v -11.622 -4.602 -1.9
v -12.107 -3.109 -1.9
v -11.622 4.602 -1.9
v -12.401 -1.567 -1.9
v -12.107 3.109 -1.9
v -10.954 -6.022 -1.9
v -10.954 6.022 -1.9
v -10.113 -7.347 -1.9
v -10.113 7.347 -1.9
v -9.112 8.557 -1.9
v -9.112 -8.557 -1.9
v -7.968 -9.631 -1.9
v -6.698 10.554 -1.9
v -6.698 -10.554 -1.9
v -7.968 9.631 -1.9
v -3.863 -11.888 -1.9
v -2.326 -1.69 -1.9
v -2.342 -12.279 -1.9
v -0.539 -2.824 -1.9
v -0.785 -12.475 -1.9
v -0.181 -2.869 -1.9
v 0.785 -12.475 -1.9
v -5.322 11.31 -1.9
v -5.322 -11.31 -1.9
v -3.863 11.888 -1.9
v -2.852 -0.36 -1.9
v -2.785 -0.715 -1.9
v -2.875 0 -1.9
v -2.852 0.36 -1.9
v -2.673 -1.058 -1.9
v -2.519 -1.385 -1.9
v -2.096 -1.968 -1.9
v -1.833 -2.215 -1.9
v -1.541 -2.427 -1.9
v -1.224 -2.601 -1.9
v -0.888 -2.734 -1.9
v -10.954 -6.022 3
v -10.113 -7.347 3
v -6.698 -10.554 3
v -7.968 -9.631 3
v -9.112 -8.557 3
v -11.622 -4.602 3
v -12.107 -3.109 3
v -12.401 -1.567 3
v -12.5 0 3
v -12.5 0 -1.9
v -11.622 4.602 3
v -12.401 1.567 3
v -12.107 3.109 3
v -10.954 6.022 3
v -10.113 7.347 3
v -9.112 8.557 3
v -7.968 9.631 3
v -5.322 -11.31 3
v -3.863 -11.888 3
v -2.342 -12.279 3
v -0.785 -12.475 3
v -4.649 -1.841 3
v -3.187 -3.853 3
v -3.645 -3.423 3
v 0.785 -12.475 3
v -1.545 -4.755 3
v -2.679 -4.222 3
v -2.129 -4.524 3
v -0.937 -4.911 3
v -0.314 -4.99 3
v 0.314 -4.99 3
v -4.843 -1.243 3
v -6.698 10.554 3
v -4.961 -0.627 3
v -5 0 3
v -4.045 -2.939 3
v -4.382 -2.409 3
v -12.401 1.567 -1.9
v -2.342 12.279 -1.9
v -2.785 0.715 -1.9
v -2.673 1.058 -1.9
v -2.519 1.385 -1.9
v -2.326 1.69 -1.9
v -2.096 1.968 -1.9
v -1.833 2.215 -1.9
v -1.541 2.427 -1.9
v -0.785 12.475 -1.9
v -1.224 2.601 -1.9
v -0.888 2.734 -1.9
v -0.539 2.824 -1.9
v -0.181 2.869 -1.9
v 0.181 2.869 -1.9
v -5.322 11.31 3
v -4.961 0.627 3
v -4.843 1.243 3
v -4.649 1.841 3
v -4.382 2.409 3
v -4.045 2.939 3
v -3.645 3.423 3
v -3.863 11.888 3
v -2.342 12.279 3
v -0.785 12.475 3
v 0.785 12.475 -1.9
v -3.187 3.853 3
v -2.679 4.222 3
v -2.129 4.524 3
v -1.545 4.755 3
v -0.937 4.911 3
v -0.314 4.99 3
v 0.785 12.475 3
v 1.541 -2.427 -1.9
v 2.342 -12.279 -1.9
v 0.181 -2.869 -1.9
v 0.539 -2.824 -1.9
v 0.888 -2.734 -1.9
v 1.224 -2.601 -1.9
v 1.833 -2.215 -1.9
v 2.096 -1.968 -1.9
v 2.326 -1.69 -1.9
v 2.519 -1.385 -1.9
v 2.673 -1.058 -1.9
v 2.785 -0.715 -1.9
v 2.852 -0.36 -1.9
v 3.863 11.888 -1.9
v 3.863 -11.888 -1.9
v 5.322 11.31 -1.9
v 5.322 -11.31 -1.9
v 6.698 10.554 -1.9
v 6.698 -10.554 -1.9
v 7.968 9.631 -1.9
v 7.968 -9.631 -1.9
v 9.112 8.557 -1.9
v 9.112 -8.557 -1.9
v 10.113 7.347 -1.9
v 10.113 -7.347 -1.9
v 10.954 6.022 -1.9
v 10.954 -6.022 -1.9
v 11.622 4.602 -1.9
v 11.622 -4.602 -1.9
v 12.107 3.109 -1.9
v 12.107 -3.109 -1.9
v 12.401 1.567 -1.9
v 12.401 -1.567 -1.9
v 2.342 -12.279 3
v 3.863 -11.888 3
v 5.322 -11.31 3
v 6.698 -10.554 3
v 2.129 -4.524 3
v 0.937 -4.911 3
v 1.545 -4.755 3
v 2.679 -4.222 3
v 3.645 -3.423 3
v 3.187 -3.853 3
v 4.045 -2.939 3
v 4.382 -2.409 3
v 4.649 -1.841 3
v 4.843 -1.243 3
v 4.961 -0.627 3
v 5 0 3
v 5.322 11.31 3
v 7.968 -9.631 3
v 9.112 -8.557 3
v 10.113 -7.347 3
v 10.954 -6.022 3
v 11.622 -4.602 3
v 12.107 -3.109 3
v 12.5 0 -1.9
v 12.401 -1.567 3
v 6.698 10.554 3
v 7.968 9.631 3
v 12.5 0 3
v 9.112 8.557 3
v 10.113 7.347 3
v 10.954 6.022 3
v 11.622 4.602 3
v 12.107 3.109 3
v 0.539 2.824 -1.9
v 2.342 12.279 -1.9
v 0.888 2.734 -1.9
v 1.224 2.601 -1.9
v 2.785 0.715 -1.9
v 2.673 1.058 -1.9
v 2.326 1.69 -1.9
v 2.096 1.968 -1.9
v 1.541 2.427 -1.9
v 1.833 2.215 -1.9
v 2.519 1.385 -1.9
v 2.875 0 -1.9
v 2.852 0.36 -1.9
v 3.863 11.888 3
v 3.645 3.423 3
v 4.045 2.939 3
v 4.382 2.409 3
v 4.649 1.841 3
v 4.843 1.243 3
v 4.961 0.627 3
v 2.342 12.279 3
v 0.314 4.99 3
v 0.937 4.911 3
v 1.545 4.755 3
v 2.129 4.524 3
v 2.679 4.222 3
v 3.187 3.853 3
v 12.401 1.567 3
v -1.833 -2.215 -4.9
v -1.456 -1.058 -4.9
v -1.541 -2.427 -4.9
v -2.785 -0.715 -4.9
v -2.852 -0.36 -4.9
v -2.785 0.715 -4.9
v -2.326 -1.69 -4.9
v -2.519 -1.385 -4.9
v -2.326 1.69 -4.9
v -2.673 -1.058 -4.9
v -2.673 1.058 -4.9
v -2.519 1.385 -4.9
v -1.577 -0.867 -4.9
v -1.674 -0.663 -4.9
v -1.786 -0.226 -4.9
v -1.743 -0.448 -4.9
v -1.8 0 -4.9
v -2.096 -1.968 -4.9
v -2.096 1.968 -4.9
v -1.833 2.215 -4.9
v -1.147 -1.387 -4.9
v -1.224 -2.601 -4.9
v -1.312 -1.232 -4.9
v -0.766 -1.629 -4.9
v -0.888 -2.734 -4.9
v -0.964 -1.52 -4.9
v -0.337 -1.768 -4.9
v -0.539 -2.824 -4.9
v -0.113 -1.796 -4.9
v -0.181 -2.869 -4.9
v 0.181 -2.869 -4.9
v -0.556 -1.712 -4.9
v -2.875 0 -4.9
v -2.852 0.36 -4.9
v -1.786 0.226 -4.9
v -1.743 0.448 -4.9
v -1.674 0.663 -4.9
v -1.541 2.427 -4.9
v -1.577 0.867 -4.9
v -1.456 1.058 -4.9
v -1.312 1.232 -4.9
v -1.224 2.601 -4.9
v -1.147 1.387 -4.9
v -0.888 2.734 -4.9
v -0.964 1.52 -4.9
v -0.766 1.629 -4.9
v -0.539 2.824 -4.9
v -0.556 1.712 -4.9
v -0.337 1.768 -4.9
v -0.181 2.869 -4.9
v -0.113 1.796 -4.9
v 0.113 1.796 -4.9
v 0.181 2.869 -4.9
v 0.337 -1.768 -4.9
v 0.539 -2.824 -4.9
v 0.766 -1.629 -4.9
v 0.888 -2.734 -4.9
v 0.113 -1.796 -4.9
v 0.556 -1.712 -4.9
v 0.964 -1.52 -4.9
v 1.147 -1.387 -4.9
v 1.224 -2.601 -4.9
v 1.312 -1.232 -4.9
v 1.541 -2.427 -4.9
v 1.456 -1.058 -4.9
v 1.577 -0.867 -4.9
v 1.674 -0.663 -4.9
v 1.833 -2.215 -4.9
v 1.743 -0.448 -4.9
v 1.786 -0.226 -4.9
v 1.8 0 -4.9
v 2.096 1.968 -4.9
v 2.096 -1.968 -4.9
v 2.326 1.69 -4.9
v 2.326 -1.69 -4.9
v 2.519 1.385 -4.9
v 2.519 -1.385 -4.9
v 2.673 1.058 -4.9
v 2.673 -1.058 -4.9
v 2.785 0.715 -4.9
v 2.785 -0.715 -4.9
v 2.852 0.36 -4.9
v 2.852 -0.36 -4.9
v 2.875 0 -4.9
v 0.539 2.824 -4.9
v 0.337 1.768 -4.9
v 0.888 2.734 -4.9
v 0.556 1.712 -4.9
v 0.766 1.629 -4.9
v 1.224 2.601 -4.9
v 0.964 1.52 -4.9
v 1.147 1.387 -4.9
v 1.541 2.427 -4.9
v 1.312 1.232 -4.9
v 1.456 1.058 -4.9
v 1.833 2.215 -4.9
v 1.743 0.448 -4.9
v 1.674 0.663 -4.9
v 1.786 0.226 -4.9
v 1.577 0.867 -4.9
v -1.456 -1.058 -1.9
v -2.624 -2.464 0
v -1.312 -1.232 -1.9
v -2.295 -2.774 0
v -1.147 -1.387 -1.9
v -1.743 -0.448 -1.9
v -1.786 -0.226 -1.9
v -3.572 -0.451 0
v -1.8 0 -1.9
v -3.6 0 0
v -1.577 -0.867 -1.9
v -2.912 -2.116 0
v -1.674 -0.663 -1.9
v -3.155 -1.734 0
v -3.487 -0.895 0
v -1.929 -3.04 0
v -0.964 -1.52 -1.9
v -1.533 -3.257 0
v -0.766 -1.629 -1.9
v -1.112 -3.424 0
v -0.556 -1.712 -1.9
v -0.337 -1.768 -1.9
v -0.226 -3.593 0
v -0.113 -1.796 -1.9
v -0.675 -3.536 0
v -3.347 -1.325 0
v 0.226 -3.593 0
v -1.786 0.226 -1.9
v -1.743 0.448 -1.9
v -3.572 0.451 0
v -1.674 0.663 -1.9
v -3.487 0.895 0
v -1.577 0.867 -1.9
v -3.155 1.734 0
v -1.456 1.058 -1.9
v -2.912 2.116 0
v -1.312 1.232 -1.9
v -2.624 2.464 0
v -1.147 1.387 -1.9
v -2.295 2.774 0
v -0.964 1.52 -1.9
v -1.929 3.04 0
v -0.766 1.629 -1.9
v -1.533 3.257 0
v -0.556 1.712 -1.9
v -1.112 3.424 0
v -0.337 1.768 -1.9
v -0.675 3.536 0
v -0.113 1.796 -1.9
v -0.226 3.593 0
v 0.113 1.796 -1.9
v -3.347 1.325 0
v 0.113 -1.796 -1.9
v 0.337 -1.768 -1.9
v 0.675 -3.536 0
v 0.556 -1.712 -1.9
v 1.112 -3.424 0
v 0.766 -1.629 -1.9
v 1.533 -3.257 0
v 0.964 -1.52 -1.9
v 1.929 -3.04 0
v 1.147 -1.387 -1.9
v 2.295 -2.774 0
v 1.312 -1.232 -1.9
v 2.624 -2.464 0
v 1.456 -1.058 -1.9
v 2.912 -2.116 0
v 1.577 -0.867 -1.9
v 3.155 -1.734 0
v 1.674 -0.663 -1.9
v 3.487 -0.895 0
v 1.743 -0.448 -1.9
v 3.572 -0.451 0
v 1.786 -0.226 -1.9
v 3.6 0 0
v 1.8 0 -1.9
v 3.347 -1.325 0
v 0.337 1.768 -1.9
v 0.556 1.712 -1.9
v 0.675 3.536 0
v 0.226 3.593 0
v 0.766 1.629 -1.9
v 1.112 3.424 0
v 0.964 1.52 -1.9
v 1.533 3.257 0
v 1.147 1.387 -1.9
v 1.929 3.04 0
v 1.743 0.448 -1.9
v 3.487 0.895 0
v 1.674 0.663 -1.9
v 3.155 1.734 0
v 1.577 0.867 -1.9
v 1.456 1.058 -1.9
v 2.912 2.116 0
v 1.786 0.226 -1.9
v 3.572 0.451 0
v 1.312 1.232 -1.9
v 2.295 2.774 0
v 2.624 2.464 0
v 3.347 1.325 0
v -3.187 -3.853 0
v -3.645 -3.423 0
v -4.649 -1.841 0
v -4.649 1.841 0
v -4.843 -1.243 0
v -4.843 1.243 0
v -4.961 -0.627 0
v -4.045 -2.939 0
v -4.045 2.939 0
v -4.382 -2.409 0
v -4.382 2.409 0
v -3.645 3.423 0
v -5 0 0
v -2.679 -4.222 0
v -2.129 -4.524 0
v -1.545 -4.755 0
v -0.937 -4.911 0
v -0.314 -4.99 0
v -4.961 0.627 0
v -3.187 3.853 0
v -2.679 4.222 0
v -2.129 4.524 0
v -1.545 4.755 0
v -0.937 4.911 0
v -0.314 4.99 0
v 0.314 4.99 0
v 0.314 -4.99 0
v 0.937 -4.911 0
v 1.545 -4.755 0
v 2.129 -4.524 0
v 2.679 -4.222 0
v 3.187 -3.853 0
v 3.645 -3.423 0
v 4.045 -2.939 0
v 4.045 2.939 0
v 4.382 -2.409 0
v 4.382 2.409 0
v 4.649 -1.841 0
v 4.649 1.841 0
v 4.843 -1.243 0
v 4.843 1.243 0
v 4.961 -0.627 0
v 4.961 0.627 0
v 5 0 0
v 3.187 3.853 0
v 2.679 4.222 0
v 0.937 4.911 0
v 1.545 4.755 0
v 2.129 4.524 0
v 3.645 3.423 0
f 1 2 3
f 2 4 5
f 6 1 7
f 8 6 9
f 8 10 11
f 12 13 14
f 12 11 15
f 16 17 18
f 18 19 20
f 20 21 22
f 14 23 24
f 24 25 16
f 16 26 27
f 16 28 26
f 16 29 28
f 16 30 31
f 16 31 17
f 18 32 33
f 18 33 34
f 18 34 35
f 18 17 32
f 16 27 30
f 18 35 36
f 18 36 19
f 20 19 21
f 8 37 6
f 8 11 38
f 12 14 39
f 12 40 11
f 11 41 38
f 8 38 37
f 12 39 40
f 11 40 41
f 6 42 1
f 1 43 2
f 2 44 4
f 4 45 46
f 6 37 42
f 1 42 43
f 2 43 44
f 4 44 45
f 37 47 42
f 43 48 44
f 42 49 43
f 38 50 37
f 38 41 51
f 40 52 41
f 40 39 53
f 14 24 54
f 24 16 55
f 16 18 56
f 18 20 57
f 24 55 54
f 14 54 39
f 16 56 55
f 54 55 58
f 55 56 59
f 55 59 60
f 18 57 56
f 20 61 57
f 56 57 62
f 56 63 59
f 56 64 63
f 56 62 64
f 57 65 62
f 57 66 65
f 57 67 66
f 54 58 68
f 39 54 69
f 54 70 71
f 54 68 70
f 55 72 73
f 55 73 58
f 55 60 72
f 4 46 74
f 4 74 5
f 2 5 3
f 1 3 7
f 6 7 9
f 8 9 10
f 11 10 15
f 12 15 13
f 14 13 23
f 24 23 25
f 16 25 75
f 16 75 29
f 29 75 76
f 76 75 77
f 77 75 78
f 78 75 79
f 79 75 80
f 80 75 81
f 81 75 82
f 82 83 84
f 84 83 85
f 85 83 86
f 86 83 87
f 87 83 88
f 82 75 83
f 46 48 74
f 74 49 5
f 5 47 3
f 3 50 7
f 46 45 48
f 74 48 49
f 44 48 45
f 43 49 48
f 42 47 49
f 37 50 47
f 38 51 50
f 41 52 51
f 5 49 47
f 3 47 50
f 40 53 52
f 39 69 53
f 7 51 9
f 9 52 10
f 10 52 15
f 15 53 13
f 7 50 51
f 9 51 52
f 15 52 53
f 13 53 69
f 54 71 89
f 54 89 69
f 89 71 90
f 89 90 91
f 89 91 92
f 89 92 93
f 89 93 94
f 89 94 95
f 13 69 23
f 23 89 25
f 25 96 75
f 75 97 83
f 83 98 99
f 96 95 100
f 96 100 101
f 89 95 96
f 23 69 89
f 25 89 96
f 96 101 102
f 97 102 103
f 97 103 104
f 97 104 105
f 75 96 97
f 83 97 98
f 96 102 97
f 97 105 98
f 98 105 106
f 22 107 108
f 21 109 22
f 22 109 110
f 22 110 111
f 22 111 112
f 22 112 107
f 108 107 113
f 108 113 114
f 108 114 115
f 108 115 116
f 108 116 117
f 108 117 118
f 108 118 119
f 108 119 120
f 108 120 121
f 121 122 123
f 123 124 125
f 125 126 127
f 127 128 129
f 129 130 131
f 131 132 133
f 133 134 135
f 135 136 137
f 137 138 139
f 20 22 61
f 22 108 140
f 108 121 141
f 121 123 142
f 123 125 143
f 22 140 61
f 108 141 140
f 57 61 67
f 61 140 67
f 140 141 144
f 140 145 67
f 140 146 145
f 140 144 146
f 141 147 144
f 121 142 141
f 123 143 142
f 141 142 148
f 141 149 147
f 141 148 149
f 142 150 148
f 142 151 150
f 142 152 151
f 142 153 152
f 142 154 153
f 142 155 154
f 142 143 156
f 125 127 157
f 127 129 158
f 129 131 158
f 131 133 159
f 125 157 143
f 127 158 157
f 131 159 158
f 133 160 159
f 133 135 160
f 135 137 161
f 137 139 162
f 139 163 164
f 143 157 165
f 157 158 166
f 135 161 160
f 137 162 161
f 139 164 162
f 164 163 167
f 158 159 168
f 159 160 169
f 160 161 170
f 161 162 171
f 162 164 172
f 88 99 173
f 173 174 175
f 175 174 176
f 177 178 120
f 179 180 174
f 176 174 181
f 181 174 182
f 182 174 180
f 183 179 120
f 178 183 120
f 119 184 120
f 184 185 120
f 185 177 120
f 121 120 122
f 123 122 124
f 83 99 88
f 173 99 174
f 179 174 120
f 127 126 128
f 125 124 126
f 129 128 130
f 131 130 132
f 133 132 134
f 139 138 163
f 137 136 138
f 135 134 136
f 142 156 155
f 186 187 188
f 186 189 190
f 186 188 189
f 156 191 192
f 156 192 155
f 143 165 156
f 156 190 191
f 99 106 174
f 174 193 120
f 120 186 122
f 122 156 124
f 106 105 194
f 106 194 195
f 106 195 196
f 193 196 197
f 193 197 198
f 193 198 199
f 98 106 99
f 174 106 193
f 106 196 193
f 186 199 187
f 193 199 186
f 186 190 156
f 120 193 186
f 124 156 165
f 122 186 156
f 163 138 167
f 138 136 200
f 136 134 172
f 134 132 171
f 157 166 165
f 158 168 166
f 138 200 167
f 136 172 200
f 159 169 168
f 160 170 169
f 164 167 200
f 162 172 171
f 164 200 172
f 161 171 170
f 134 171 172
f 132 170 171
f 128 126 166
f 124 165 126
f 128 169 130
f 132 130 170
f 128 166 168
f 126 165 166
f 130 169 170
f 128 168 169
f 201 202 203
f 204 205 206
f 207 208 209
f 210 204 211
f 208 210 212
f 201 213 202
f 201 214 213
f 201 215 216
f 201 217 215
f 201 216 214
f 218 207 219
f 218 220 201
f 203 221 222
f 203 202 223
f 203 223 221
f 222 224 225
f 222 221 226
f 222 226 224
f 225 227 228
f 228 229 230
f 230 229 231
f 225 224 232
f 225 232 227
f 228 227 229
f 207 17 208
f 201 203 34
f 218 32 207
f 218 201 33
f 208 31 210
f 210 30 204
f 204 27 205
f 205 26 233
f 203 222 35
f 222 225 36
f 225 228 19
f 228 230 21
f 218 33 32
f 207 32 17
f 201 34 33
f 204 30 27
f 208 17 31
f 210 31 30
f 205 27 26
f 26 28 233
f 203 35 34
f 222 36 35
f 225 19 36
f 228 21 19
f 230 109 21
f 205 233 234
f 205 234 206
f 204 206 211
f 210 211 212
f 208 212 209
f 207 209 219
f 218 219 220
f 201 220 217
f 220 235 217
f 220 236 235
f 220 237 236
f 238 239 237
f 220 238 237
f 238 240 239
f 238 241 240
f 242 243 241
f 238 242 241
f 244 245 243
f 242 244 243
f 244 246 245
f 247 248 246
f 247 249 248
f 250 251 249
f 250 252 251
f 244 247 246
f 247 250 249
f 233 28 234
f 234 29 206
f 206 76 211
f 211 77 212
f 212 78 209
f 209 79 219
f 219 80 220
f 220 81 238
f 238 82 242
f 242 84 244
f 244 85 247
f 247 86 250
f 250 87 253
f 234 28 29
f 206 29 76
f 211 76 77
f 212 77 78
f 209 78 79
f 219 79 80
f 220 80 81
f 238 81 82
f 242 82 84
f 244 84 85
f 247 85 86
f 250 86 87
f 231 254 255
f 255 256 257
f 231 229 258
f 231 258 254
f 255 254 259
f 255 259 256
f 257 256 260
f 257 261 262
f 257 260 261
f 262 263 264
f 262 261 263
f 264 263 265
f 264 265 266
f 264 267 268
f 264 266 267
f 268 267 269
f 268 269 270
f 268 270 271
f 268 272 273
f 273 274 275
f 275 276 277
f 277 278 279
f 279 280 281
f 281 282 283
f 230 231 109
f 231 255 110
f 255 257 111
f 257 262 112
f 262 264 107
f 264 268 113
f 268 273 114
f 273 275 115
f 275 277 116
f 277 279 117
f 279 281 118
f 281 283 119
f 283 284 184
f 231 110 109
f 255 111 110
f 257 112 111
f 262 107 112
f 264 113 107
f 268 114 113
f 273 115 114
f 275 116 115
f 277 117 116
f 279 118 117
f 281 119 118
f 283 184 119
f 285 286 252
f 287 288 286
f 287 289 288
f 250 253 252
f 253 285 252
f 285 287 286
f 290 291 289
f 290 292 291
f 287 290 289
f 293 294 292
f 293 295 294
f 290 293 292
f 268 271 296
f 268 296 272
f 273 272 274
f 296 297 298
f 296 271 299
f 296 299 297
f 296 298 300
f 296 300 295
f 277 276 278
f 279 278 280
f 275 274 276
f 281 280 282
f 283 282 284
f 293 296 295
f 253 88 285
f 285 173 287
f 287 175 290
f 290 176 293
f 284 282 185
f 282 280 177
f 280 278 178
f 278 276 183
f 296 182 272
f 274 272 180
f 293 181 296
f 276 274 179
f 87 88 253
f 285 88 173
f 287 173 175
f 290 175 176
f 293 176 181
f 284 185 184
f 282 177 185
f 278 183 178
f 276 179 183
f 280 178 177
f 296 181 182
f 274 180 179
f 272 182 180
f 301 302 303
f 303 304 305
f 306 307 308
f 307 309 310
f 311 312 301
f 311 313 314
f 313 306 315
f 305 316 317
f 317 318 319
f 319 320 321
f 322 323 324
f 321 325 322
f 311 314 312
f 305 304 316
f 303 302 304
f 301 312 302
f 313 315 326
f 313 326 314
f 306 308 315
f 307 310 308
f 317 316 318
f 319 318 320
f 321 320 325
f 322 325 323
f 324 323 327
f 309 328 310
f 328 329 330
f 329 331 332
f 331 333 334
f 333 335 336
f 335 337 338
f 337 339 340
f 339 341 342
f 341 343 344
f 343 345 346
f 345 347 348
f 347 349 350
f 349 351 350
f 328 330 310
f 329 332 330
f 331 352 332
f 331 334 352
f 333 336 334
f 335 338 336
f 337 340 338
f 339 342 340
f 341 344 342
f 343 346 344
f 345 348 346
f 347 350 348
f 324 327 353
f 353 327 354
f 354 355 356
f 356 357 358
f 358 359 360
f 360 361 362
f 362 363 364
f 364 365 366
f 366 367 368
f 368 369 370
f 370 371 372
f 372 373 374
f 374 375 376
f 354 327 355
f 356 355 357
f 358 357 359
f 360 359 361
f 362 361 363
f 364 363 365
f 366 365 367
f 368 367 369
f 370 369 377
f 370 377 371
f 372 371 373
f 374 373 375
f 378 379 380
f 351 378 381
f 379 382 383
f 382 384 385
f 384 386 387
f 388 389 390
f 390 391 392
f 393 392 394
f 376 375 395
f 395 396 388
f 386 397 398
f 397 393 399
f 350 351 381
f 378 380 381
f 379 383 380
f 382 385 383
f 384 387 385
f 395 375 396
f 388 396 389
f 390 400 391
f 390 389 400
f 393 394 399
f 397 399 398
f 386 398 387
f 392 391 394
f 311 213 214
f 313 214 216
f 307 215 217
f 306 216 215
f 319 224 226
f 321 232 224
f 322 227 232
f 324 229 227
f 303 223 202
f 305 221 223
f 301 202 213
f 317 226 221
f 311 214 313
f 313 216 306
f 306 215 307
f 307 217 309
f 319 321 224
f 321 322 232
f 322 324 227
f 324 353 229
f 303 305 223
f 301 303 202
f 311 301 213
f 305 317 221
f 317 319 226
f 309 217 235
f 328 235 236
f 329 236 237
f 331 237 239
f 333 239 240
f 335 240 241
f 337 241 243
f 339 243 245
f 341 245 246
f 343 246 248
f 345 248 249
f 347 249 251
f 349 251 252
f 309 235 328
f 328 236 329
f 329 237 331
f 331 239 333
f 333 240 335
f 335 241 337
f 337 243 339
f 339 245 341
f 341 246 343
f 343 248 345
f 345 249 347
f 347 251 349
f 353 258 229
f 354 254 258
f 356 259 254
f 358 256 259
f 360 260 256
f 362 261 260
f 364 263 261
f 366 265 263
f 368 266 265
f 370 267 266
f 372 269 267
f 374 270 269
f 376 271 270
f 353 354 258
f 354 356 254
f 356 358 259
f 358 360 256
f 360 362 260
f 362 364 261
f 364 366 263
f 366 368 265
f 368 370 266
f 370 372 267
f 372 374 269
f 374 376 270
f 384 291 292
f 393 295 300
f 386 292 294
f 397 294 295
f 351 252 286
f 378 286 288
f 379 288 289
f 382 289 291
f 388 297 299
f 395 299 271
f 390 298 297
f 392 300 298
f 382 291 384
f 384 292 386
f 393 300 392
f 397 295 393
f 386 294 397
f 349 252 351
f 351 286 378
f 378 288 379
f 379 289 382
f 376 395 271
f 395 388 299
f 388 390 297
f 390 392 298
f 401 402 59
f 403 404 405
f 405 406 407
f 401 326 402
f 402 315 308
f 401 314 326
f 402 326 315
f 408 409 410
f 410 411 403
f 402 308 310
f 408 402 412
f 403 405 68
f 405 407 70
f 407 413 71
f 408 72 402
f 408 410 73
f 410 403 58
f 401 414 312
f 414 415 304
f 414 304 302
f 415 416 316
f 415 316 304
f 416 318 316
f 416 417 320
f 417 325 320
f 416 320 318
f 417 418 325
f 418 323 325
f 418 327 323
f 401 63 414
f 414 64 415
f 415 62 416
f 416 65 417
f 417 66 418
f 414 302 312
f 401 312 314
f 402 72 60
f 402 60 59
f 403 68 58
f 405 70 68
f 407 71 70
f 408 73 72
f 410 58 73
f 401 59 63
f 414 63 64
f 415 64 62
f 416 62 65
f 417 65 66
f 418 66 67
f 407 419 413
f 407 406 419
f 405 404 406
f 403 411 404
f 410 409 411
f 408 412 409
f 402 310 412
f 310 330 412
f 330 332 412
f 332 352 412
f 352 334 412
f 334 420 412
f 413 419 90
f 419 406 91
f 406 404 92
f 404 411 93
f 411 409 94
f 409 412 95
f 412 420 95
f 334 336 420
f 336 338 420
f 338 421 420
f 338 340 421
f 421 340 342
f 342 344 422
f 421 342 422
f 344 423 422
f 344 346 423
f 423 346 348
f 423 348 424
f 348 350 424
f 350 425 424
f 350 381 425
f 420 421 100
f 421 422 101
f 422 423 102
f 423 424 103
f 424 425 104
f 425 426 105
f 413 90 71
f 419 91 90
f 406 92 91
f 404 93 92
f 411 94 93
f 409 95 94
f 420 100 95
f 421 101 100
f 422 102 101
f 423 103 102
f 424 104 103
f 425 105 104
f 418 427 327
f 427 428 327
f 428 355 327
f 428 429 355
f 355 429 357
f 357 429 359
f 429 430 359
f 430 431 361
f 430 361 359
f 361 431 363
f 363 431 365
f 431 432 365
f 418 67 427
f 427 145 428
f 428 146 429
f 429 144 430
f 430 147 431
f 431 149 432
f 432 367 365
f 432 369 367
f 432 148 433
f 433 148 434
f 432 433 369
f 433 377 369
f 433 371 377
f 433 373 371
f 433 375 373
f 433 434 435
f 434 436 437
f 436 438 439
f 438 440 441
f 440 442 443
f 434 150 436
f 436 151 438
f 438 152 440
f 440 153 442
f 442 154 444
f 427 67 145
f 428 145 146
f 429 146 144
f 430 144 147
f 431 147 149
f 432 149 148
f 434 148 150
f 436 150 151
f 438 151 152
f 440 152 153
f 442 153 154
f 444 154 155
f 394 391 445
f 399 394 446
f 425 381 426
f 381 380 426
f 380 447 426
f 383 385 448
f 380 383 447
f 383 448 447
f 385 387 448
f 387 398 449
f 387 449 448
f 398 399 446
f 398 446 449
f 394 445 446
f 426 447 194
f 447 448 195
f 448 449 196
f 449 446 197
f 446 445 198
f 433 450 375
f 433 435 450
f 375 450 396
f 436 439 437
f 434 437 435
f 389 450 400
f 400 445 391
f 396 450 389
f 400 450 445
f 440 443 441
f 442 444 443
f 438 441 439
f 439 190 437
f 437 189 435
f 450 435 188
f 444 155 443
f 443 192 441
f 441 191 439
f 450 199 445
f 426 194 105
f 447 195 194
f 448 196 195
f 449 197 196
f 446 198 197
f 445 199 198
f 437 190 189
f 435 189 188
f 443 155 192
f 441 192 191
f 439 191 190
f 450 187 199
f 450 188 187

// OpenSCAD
$fn = 50;


difference() {
	union() {
		translate(v = [0, 0, -1.9000000000]) {
			cylinder(h = 4.9000000000, r = 12.5000000000);
		}
		#translate(v = [0, 0, -4.9000000000]) {
			cylinder(h = 4.9000000000, r = 2.8750000000);
		}
	}
	union() {
		translate(v = [0, 0, 0]) {
			rotate(a = [0, 0, 0]) {
				difference() {
					union() {
						translate(v = [0, 0, -4.9000000000]) {
							cylinder(h = 4.9000000000, r = 1.5000000000);
						}
						translate(v = [0, 0, -1.9000000000]) {
							cylinder(h = 1.9000000000, r1 = 1.8000000000, r2 = 3.6000000000);
						}
						translate(v = [0, 0, -4.9000000000]) {
							cylinder(h = 4.9000000000, r = 1.8000000000);
						}
						translate(v = [0, 0, -4.9000000000]) {
							cylinder(h = 4.9000000000, r = 1.5000000000);
						}
					}
					union();
				}
			}
		}
		#cylinder(h = 3, r = 5.0000000000);
	}
}
